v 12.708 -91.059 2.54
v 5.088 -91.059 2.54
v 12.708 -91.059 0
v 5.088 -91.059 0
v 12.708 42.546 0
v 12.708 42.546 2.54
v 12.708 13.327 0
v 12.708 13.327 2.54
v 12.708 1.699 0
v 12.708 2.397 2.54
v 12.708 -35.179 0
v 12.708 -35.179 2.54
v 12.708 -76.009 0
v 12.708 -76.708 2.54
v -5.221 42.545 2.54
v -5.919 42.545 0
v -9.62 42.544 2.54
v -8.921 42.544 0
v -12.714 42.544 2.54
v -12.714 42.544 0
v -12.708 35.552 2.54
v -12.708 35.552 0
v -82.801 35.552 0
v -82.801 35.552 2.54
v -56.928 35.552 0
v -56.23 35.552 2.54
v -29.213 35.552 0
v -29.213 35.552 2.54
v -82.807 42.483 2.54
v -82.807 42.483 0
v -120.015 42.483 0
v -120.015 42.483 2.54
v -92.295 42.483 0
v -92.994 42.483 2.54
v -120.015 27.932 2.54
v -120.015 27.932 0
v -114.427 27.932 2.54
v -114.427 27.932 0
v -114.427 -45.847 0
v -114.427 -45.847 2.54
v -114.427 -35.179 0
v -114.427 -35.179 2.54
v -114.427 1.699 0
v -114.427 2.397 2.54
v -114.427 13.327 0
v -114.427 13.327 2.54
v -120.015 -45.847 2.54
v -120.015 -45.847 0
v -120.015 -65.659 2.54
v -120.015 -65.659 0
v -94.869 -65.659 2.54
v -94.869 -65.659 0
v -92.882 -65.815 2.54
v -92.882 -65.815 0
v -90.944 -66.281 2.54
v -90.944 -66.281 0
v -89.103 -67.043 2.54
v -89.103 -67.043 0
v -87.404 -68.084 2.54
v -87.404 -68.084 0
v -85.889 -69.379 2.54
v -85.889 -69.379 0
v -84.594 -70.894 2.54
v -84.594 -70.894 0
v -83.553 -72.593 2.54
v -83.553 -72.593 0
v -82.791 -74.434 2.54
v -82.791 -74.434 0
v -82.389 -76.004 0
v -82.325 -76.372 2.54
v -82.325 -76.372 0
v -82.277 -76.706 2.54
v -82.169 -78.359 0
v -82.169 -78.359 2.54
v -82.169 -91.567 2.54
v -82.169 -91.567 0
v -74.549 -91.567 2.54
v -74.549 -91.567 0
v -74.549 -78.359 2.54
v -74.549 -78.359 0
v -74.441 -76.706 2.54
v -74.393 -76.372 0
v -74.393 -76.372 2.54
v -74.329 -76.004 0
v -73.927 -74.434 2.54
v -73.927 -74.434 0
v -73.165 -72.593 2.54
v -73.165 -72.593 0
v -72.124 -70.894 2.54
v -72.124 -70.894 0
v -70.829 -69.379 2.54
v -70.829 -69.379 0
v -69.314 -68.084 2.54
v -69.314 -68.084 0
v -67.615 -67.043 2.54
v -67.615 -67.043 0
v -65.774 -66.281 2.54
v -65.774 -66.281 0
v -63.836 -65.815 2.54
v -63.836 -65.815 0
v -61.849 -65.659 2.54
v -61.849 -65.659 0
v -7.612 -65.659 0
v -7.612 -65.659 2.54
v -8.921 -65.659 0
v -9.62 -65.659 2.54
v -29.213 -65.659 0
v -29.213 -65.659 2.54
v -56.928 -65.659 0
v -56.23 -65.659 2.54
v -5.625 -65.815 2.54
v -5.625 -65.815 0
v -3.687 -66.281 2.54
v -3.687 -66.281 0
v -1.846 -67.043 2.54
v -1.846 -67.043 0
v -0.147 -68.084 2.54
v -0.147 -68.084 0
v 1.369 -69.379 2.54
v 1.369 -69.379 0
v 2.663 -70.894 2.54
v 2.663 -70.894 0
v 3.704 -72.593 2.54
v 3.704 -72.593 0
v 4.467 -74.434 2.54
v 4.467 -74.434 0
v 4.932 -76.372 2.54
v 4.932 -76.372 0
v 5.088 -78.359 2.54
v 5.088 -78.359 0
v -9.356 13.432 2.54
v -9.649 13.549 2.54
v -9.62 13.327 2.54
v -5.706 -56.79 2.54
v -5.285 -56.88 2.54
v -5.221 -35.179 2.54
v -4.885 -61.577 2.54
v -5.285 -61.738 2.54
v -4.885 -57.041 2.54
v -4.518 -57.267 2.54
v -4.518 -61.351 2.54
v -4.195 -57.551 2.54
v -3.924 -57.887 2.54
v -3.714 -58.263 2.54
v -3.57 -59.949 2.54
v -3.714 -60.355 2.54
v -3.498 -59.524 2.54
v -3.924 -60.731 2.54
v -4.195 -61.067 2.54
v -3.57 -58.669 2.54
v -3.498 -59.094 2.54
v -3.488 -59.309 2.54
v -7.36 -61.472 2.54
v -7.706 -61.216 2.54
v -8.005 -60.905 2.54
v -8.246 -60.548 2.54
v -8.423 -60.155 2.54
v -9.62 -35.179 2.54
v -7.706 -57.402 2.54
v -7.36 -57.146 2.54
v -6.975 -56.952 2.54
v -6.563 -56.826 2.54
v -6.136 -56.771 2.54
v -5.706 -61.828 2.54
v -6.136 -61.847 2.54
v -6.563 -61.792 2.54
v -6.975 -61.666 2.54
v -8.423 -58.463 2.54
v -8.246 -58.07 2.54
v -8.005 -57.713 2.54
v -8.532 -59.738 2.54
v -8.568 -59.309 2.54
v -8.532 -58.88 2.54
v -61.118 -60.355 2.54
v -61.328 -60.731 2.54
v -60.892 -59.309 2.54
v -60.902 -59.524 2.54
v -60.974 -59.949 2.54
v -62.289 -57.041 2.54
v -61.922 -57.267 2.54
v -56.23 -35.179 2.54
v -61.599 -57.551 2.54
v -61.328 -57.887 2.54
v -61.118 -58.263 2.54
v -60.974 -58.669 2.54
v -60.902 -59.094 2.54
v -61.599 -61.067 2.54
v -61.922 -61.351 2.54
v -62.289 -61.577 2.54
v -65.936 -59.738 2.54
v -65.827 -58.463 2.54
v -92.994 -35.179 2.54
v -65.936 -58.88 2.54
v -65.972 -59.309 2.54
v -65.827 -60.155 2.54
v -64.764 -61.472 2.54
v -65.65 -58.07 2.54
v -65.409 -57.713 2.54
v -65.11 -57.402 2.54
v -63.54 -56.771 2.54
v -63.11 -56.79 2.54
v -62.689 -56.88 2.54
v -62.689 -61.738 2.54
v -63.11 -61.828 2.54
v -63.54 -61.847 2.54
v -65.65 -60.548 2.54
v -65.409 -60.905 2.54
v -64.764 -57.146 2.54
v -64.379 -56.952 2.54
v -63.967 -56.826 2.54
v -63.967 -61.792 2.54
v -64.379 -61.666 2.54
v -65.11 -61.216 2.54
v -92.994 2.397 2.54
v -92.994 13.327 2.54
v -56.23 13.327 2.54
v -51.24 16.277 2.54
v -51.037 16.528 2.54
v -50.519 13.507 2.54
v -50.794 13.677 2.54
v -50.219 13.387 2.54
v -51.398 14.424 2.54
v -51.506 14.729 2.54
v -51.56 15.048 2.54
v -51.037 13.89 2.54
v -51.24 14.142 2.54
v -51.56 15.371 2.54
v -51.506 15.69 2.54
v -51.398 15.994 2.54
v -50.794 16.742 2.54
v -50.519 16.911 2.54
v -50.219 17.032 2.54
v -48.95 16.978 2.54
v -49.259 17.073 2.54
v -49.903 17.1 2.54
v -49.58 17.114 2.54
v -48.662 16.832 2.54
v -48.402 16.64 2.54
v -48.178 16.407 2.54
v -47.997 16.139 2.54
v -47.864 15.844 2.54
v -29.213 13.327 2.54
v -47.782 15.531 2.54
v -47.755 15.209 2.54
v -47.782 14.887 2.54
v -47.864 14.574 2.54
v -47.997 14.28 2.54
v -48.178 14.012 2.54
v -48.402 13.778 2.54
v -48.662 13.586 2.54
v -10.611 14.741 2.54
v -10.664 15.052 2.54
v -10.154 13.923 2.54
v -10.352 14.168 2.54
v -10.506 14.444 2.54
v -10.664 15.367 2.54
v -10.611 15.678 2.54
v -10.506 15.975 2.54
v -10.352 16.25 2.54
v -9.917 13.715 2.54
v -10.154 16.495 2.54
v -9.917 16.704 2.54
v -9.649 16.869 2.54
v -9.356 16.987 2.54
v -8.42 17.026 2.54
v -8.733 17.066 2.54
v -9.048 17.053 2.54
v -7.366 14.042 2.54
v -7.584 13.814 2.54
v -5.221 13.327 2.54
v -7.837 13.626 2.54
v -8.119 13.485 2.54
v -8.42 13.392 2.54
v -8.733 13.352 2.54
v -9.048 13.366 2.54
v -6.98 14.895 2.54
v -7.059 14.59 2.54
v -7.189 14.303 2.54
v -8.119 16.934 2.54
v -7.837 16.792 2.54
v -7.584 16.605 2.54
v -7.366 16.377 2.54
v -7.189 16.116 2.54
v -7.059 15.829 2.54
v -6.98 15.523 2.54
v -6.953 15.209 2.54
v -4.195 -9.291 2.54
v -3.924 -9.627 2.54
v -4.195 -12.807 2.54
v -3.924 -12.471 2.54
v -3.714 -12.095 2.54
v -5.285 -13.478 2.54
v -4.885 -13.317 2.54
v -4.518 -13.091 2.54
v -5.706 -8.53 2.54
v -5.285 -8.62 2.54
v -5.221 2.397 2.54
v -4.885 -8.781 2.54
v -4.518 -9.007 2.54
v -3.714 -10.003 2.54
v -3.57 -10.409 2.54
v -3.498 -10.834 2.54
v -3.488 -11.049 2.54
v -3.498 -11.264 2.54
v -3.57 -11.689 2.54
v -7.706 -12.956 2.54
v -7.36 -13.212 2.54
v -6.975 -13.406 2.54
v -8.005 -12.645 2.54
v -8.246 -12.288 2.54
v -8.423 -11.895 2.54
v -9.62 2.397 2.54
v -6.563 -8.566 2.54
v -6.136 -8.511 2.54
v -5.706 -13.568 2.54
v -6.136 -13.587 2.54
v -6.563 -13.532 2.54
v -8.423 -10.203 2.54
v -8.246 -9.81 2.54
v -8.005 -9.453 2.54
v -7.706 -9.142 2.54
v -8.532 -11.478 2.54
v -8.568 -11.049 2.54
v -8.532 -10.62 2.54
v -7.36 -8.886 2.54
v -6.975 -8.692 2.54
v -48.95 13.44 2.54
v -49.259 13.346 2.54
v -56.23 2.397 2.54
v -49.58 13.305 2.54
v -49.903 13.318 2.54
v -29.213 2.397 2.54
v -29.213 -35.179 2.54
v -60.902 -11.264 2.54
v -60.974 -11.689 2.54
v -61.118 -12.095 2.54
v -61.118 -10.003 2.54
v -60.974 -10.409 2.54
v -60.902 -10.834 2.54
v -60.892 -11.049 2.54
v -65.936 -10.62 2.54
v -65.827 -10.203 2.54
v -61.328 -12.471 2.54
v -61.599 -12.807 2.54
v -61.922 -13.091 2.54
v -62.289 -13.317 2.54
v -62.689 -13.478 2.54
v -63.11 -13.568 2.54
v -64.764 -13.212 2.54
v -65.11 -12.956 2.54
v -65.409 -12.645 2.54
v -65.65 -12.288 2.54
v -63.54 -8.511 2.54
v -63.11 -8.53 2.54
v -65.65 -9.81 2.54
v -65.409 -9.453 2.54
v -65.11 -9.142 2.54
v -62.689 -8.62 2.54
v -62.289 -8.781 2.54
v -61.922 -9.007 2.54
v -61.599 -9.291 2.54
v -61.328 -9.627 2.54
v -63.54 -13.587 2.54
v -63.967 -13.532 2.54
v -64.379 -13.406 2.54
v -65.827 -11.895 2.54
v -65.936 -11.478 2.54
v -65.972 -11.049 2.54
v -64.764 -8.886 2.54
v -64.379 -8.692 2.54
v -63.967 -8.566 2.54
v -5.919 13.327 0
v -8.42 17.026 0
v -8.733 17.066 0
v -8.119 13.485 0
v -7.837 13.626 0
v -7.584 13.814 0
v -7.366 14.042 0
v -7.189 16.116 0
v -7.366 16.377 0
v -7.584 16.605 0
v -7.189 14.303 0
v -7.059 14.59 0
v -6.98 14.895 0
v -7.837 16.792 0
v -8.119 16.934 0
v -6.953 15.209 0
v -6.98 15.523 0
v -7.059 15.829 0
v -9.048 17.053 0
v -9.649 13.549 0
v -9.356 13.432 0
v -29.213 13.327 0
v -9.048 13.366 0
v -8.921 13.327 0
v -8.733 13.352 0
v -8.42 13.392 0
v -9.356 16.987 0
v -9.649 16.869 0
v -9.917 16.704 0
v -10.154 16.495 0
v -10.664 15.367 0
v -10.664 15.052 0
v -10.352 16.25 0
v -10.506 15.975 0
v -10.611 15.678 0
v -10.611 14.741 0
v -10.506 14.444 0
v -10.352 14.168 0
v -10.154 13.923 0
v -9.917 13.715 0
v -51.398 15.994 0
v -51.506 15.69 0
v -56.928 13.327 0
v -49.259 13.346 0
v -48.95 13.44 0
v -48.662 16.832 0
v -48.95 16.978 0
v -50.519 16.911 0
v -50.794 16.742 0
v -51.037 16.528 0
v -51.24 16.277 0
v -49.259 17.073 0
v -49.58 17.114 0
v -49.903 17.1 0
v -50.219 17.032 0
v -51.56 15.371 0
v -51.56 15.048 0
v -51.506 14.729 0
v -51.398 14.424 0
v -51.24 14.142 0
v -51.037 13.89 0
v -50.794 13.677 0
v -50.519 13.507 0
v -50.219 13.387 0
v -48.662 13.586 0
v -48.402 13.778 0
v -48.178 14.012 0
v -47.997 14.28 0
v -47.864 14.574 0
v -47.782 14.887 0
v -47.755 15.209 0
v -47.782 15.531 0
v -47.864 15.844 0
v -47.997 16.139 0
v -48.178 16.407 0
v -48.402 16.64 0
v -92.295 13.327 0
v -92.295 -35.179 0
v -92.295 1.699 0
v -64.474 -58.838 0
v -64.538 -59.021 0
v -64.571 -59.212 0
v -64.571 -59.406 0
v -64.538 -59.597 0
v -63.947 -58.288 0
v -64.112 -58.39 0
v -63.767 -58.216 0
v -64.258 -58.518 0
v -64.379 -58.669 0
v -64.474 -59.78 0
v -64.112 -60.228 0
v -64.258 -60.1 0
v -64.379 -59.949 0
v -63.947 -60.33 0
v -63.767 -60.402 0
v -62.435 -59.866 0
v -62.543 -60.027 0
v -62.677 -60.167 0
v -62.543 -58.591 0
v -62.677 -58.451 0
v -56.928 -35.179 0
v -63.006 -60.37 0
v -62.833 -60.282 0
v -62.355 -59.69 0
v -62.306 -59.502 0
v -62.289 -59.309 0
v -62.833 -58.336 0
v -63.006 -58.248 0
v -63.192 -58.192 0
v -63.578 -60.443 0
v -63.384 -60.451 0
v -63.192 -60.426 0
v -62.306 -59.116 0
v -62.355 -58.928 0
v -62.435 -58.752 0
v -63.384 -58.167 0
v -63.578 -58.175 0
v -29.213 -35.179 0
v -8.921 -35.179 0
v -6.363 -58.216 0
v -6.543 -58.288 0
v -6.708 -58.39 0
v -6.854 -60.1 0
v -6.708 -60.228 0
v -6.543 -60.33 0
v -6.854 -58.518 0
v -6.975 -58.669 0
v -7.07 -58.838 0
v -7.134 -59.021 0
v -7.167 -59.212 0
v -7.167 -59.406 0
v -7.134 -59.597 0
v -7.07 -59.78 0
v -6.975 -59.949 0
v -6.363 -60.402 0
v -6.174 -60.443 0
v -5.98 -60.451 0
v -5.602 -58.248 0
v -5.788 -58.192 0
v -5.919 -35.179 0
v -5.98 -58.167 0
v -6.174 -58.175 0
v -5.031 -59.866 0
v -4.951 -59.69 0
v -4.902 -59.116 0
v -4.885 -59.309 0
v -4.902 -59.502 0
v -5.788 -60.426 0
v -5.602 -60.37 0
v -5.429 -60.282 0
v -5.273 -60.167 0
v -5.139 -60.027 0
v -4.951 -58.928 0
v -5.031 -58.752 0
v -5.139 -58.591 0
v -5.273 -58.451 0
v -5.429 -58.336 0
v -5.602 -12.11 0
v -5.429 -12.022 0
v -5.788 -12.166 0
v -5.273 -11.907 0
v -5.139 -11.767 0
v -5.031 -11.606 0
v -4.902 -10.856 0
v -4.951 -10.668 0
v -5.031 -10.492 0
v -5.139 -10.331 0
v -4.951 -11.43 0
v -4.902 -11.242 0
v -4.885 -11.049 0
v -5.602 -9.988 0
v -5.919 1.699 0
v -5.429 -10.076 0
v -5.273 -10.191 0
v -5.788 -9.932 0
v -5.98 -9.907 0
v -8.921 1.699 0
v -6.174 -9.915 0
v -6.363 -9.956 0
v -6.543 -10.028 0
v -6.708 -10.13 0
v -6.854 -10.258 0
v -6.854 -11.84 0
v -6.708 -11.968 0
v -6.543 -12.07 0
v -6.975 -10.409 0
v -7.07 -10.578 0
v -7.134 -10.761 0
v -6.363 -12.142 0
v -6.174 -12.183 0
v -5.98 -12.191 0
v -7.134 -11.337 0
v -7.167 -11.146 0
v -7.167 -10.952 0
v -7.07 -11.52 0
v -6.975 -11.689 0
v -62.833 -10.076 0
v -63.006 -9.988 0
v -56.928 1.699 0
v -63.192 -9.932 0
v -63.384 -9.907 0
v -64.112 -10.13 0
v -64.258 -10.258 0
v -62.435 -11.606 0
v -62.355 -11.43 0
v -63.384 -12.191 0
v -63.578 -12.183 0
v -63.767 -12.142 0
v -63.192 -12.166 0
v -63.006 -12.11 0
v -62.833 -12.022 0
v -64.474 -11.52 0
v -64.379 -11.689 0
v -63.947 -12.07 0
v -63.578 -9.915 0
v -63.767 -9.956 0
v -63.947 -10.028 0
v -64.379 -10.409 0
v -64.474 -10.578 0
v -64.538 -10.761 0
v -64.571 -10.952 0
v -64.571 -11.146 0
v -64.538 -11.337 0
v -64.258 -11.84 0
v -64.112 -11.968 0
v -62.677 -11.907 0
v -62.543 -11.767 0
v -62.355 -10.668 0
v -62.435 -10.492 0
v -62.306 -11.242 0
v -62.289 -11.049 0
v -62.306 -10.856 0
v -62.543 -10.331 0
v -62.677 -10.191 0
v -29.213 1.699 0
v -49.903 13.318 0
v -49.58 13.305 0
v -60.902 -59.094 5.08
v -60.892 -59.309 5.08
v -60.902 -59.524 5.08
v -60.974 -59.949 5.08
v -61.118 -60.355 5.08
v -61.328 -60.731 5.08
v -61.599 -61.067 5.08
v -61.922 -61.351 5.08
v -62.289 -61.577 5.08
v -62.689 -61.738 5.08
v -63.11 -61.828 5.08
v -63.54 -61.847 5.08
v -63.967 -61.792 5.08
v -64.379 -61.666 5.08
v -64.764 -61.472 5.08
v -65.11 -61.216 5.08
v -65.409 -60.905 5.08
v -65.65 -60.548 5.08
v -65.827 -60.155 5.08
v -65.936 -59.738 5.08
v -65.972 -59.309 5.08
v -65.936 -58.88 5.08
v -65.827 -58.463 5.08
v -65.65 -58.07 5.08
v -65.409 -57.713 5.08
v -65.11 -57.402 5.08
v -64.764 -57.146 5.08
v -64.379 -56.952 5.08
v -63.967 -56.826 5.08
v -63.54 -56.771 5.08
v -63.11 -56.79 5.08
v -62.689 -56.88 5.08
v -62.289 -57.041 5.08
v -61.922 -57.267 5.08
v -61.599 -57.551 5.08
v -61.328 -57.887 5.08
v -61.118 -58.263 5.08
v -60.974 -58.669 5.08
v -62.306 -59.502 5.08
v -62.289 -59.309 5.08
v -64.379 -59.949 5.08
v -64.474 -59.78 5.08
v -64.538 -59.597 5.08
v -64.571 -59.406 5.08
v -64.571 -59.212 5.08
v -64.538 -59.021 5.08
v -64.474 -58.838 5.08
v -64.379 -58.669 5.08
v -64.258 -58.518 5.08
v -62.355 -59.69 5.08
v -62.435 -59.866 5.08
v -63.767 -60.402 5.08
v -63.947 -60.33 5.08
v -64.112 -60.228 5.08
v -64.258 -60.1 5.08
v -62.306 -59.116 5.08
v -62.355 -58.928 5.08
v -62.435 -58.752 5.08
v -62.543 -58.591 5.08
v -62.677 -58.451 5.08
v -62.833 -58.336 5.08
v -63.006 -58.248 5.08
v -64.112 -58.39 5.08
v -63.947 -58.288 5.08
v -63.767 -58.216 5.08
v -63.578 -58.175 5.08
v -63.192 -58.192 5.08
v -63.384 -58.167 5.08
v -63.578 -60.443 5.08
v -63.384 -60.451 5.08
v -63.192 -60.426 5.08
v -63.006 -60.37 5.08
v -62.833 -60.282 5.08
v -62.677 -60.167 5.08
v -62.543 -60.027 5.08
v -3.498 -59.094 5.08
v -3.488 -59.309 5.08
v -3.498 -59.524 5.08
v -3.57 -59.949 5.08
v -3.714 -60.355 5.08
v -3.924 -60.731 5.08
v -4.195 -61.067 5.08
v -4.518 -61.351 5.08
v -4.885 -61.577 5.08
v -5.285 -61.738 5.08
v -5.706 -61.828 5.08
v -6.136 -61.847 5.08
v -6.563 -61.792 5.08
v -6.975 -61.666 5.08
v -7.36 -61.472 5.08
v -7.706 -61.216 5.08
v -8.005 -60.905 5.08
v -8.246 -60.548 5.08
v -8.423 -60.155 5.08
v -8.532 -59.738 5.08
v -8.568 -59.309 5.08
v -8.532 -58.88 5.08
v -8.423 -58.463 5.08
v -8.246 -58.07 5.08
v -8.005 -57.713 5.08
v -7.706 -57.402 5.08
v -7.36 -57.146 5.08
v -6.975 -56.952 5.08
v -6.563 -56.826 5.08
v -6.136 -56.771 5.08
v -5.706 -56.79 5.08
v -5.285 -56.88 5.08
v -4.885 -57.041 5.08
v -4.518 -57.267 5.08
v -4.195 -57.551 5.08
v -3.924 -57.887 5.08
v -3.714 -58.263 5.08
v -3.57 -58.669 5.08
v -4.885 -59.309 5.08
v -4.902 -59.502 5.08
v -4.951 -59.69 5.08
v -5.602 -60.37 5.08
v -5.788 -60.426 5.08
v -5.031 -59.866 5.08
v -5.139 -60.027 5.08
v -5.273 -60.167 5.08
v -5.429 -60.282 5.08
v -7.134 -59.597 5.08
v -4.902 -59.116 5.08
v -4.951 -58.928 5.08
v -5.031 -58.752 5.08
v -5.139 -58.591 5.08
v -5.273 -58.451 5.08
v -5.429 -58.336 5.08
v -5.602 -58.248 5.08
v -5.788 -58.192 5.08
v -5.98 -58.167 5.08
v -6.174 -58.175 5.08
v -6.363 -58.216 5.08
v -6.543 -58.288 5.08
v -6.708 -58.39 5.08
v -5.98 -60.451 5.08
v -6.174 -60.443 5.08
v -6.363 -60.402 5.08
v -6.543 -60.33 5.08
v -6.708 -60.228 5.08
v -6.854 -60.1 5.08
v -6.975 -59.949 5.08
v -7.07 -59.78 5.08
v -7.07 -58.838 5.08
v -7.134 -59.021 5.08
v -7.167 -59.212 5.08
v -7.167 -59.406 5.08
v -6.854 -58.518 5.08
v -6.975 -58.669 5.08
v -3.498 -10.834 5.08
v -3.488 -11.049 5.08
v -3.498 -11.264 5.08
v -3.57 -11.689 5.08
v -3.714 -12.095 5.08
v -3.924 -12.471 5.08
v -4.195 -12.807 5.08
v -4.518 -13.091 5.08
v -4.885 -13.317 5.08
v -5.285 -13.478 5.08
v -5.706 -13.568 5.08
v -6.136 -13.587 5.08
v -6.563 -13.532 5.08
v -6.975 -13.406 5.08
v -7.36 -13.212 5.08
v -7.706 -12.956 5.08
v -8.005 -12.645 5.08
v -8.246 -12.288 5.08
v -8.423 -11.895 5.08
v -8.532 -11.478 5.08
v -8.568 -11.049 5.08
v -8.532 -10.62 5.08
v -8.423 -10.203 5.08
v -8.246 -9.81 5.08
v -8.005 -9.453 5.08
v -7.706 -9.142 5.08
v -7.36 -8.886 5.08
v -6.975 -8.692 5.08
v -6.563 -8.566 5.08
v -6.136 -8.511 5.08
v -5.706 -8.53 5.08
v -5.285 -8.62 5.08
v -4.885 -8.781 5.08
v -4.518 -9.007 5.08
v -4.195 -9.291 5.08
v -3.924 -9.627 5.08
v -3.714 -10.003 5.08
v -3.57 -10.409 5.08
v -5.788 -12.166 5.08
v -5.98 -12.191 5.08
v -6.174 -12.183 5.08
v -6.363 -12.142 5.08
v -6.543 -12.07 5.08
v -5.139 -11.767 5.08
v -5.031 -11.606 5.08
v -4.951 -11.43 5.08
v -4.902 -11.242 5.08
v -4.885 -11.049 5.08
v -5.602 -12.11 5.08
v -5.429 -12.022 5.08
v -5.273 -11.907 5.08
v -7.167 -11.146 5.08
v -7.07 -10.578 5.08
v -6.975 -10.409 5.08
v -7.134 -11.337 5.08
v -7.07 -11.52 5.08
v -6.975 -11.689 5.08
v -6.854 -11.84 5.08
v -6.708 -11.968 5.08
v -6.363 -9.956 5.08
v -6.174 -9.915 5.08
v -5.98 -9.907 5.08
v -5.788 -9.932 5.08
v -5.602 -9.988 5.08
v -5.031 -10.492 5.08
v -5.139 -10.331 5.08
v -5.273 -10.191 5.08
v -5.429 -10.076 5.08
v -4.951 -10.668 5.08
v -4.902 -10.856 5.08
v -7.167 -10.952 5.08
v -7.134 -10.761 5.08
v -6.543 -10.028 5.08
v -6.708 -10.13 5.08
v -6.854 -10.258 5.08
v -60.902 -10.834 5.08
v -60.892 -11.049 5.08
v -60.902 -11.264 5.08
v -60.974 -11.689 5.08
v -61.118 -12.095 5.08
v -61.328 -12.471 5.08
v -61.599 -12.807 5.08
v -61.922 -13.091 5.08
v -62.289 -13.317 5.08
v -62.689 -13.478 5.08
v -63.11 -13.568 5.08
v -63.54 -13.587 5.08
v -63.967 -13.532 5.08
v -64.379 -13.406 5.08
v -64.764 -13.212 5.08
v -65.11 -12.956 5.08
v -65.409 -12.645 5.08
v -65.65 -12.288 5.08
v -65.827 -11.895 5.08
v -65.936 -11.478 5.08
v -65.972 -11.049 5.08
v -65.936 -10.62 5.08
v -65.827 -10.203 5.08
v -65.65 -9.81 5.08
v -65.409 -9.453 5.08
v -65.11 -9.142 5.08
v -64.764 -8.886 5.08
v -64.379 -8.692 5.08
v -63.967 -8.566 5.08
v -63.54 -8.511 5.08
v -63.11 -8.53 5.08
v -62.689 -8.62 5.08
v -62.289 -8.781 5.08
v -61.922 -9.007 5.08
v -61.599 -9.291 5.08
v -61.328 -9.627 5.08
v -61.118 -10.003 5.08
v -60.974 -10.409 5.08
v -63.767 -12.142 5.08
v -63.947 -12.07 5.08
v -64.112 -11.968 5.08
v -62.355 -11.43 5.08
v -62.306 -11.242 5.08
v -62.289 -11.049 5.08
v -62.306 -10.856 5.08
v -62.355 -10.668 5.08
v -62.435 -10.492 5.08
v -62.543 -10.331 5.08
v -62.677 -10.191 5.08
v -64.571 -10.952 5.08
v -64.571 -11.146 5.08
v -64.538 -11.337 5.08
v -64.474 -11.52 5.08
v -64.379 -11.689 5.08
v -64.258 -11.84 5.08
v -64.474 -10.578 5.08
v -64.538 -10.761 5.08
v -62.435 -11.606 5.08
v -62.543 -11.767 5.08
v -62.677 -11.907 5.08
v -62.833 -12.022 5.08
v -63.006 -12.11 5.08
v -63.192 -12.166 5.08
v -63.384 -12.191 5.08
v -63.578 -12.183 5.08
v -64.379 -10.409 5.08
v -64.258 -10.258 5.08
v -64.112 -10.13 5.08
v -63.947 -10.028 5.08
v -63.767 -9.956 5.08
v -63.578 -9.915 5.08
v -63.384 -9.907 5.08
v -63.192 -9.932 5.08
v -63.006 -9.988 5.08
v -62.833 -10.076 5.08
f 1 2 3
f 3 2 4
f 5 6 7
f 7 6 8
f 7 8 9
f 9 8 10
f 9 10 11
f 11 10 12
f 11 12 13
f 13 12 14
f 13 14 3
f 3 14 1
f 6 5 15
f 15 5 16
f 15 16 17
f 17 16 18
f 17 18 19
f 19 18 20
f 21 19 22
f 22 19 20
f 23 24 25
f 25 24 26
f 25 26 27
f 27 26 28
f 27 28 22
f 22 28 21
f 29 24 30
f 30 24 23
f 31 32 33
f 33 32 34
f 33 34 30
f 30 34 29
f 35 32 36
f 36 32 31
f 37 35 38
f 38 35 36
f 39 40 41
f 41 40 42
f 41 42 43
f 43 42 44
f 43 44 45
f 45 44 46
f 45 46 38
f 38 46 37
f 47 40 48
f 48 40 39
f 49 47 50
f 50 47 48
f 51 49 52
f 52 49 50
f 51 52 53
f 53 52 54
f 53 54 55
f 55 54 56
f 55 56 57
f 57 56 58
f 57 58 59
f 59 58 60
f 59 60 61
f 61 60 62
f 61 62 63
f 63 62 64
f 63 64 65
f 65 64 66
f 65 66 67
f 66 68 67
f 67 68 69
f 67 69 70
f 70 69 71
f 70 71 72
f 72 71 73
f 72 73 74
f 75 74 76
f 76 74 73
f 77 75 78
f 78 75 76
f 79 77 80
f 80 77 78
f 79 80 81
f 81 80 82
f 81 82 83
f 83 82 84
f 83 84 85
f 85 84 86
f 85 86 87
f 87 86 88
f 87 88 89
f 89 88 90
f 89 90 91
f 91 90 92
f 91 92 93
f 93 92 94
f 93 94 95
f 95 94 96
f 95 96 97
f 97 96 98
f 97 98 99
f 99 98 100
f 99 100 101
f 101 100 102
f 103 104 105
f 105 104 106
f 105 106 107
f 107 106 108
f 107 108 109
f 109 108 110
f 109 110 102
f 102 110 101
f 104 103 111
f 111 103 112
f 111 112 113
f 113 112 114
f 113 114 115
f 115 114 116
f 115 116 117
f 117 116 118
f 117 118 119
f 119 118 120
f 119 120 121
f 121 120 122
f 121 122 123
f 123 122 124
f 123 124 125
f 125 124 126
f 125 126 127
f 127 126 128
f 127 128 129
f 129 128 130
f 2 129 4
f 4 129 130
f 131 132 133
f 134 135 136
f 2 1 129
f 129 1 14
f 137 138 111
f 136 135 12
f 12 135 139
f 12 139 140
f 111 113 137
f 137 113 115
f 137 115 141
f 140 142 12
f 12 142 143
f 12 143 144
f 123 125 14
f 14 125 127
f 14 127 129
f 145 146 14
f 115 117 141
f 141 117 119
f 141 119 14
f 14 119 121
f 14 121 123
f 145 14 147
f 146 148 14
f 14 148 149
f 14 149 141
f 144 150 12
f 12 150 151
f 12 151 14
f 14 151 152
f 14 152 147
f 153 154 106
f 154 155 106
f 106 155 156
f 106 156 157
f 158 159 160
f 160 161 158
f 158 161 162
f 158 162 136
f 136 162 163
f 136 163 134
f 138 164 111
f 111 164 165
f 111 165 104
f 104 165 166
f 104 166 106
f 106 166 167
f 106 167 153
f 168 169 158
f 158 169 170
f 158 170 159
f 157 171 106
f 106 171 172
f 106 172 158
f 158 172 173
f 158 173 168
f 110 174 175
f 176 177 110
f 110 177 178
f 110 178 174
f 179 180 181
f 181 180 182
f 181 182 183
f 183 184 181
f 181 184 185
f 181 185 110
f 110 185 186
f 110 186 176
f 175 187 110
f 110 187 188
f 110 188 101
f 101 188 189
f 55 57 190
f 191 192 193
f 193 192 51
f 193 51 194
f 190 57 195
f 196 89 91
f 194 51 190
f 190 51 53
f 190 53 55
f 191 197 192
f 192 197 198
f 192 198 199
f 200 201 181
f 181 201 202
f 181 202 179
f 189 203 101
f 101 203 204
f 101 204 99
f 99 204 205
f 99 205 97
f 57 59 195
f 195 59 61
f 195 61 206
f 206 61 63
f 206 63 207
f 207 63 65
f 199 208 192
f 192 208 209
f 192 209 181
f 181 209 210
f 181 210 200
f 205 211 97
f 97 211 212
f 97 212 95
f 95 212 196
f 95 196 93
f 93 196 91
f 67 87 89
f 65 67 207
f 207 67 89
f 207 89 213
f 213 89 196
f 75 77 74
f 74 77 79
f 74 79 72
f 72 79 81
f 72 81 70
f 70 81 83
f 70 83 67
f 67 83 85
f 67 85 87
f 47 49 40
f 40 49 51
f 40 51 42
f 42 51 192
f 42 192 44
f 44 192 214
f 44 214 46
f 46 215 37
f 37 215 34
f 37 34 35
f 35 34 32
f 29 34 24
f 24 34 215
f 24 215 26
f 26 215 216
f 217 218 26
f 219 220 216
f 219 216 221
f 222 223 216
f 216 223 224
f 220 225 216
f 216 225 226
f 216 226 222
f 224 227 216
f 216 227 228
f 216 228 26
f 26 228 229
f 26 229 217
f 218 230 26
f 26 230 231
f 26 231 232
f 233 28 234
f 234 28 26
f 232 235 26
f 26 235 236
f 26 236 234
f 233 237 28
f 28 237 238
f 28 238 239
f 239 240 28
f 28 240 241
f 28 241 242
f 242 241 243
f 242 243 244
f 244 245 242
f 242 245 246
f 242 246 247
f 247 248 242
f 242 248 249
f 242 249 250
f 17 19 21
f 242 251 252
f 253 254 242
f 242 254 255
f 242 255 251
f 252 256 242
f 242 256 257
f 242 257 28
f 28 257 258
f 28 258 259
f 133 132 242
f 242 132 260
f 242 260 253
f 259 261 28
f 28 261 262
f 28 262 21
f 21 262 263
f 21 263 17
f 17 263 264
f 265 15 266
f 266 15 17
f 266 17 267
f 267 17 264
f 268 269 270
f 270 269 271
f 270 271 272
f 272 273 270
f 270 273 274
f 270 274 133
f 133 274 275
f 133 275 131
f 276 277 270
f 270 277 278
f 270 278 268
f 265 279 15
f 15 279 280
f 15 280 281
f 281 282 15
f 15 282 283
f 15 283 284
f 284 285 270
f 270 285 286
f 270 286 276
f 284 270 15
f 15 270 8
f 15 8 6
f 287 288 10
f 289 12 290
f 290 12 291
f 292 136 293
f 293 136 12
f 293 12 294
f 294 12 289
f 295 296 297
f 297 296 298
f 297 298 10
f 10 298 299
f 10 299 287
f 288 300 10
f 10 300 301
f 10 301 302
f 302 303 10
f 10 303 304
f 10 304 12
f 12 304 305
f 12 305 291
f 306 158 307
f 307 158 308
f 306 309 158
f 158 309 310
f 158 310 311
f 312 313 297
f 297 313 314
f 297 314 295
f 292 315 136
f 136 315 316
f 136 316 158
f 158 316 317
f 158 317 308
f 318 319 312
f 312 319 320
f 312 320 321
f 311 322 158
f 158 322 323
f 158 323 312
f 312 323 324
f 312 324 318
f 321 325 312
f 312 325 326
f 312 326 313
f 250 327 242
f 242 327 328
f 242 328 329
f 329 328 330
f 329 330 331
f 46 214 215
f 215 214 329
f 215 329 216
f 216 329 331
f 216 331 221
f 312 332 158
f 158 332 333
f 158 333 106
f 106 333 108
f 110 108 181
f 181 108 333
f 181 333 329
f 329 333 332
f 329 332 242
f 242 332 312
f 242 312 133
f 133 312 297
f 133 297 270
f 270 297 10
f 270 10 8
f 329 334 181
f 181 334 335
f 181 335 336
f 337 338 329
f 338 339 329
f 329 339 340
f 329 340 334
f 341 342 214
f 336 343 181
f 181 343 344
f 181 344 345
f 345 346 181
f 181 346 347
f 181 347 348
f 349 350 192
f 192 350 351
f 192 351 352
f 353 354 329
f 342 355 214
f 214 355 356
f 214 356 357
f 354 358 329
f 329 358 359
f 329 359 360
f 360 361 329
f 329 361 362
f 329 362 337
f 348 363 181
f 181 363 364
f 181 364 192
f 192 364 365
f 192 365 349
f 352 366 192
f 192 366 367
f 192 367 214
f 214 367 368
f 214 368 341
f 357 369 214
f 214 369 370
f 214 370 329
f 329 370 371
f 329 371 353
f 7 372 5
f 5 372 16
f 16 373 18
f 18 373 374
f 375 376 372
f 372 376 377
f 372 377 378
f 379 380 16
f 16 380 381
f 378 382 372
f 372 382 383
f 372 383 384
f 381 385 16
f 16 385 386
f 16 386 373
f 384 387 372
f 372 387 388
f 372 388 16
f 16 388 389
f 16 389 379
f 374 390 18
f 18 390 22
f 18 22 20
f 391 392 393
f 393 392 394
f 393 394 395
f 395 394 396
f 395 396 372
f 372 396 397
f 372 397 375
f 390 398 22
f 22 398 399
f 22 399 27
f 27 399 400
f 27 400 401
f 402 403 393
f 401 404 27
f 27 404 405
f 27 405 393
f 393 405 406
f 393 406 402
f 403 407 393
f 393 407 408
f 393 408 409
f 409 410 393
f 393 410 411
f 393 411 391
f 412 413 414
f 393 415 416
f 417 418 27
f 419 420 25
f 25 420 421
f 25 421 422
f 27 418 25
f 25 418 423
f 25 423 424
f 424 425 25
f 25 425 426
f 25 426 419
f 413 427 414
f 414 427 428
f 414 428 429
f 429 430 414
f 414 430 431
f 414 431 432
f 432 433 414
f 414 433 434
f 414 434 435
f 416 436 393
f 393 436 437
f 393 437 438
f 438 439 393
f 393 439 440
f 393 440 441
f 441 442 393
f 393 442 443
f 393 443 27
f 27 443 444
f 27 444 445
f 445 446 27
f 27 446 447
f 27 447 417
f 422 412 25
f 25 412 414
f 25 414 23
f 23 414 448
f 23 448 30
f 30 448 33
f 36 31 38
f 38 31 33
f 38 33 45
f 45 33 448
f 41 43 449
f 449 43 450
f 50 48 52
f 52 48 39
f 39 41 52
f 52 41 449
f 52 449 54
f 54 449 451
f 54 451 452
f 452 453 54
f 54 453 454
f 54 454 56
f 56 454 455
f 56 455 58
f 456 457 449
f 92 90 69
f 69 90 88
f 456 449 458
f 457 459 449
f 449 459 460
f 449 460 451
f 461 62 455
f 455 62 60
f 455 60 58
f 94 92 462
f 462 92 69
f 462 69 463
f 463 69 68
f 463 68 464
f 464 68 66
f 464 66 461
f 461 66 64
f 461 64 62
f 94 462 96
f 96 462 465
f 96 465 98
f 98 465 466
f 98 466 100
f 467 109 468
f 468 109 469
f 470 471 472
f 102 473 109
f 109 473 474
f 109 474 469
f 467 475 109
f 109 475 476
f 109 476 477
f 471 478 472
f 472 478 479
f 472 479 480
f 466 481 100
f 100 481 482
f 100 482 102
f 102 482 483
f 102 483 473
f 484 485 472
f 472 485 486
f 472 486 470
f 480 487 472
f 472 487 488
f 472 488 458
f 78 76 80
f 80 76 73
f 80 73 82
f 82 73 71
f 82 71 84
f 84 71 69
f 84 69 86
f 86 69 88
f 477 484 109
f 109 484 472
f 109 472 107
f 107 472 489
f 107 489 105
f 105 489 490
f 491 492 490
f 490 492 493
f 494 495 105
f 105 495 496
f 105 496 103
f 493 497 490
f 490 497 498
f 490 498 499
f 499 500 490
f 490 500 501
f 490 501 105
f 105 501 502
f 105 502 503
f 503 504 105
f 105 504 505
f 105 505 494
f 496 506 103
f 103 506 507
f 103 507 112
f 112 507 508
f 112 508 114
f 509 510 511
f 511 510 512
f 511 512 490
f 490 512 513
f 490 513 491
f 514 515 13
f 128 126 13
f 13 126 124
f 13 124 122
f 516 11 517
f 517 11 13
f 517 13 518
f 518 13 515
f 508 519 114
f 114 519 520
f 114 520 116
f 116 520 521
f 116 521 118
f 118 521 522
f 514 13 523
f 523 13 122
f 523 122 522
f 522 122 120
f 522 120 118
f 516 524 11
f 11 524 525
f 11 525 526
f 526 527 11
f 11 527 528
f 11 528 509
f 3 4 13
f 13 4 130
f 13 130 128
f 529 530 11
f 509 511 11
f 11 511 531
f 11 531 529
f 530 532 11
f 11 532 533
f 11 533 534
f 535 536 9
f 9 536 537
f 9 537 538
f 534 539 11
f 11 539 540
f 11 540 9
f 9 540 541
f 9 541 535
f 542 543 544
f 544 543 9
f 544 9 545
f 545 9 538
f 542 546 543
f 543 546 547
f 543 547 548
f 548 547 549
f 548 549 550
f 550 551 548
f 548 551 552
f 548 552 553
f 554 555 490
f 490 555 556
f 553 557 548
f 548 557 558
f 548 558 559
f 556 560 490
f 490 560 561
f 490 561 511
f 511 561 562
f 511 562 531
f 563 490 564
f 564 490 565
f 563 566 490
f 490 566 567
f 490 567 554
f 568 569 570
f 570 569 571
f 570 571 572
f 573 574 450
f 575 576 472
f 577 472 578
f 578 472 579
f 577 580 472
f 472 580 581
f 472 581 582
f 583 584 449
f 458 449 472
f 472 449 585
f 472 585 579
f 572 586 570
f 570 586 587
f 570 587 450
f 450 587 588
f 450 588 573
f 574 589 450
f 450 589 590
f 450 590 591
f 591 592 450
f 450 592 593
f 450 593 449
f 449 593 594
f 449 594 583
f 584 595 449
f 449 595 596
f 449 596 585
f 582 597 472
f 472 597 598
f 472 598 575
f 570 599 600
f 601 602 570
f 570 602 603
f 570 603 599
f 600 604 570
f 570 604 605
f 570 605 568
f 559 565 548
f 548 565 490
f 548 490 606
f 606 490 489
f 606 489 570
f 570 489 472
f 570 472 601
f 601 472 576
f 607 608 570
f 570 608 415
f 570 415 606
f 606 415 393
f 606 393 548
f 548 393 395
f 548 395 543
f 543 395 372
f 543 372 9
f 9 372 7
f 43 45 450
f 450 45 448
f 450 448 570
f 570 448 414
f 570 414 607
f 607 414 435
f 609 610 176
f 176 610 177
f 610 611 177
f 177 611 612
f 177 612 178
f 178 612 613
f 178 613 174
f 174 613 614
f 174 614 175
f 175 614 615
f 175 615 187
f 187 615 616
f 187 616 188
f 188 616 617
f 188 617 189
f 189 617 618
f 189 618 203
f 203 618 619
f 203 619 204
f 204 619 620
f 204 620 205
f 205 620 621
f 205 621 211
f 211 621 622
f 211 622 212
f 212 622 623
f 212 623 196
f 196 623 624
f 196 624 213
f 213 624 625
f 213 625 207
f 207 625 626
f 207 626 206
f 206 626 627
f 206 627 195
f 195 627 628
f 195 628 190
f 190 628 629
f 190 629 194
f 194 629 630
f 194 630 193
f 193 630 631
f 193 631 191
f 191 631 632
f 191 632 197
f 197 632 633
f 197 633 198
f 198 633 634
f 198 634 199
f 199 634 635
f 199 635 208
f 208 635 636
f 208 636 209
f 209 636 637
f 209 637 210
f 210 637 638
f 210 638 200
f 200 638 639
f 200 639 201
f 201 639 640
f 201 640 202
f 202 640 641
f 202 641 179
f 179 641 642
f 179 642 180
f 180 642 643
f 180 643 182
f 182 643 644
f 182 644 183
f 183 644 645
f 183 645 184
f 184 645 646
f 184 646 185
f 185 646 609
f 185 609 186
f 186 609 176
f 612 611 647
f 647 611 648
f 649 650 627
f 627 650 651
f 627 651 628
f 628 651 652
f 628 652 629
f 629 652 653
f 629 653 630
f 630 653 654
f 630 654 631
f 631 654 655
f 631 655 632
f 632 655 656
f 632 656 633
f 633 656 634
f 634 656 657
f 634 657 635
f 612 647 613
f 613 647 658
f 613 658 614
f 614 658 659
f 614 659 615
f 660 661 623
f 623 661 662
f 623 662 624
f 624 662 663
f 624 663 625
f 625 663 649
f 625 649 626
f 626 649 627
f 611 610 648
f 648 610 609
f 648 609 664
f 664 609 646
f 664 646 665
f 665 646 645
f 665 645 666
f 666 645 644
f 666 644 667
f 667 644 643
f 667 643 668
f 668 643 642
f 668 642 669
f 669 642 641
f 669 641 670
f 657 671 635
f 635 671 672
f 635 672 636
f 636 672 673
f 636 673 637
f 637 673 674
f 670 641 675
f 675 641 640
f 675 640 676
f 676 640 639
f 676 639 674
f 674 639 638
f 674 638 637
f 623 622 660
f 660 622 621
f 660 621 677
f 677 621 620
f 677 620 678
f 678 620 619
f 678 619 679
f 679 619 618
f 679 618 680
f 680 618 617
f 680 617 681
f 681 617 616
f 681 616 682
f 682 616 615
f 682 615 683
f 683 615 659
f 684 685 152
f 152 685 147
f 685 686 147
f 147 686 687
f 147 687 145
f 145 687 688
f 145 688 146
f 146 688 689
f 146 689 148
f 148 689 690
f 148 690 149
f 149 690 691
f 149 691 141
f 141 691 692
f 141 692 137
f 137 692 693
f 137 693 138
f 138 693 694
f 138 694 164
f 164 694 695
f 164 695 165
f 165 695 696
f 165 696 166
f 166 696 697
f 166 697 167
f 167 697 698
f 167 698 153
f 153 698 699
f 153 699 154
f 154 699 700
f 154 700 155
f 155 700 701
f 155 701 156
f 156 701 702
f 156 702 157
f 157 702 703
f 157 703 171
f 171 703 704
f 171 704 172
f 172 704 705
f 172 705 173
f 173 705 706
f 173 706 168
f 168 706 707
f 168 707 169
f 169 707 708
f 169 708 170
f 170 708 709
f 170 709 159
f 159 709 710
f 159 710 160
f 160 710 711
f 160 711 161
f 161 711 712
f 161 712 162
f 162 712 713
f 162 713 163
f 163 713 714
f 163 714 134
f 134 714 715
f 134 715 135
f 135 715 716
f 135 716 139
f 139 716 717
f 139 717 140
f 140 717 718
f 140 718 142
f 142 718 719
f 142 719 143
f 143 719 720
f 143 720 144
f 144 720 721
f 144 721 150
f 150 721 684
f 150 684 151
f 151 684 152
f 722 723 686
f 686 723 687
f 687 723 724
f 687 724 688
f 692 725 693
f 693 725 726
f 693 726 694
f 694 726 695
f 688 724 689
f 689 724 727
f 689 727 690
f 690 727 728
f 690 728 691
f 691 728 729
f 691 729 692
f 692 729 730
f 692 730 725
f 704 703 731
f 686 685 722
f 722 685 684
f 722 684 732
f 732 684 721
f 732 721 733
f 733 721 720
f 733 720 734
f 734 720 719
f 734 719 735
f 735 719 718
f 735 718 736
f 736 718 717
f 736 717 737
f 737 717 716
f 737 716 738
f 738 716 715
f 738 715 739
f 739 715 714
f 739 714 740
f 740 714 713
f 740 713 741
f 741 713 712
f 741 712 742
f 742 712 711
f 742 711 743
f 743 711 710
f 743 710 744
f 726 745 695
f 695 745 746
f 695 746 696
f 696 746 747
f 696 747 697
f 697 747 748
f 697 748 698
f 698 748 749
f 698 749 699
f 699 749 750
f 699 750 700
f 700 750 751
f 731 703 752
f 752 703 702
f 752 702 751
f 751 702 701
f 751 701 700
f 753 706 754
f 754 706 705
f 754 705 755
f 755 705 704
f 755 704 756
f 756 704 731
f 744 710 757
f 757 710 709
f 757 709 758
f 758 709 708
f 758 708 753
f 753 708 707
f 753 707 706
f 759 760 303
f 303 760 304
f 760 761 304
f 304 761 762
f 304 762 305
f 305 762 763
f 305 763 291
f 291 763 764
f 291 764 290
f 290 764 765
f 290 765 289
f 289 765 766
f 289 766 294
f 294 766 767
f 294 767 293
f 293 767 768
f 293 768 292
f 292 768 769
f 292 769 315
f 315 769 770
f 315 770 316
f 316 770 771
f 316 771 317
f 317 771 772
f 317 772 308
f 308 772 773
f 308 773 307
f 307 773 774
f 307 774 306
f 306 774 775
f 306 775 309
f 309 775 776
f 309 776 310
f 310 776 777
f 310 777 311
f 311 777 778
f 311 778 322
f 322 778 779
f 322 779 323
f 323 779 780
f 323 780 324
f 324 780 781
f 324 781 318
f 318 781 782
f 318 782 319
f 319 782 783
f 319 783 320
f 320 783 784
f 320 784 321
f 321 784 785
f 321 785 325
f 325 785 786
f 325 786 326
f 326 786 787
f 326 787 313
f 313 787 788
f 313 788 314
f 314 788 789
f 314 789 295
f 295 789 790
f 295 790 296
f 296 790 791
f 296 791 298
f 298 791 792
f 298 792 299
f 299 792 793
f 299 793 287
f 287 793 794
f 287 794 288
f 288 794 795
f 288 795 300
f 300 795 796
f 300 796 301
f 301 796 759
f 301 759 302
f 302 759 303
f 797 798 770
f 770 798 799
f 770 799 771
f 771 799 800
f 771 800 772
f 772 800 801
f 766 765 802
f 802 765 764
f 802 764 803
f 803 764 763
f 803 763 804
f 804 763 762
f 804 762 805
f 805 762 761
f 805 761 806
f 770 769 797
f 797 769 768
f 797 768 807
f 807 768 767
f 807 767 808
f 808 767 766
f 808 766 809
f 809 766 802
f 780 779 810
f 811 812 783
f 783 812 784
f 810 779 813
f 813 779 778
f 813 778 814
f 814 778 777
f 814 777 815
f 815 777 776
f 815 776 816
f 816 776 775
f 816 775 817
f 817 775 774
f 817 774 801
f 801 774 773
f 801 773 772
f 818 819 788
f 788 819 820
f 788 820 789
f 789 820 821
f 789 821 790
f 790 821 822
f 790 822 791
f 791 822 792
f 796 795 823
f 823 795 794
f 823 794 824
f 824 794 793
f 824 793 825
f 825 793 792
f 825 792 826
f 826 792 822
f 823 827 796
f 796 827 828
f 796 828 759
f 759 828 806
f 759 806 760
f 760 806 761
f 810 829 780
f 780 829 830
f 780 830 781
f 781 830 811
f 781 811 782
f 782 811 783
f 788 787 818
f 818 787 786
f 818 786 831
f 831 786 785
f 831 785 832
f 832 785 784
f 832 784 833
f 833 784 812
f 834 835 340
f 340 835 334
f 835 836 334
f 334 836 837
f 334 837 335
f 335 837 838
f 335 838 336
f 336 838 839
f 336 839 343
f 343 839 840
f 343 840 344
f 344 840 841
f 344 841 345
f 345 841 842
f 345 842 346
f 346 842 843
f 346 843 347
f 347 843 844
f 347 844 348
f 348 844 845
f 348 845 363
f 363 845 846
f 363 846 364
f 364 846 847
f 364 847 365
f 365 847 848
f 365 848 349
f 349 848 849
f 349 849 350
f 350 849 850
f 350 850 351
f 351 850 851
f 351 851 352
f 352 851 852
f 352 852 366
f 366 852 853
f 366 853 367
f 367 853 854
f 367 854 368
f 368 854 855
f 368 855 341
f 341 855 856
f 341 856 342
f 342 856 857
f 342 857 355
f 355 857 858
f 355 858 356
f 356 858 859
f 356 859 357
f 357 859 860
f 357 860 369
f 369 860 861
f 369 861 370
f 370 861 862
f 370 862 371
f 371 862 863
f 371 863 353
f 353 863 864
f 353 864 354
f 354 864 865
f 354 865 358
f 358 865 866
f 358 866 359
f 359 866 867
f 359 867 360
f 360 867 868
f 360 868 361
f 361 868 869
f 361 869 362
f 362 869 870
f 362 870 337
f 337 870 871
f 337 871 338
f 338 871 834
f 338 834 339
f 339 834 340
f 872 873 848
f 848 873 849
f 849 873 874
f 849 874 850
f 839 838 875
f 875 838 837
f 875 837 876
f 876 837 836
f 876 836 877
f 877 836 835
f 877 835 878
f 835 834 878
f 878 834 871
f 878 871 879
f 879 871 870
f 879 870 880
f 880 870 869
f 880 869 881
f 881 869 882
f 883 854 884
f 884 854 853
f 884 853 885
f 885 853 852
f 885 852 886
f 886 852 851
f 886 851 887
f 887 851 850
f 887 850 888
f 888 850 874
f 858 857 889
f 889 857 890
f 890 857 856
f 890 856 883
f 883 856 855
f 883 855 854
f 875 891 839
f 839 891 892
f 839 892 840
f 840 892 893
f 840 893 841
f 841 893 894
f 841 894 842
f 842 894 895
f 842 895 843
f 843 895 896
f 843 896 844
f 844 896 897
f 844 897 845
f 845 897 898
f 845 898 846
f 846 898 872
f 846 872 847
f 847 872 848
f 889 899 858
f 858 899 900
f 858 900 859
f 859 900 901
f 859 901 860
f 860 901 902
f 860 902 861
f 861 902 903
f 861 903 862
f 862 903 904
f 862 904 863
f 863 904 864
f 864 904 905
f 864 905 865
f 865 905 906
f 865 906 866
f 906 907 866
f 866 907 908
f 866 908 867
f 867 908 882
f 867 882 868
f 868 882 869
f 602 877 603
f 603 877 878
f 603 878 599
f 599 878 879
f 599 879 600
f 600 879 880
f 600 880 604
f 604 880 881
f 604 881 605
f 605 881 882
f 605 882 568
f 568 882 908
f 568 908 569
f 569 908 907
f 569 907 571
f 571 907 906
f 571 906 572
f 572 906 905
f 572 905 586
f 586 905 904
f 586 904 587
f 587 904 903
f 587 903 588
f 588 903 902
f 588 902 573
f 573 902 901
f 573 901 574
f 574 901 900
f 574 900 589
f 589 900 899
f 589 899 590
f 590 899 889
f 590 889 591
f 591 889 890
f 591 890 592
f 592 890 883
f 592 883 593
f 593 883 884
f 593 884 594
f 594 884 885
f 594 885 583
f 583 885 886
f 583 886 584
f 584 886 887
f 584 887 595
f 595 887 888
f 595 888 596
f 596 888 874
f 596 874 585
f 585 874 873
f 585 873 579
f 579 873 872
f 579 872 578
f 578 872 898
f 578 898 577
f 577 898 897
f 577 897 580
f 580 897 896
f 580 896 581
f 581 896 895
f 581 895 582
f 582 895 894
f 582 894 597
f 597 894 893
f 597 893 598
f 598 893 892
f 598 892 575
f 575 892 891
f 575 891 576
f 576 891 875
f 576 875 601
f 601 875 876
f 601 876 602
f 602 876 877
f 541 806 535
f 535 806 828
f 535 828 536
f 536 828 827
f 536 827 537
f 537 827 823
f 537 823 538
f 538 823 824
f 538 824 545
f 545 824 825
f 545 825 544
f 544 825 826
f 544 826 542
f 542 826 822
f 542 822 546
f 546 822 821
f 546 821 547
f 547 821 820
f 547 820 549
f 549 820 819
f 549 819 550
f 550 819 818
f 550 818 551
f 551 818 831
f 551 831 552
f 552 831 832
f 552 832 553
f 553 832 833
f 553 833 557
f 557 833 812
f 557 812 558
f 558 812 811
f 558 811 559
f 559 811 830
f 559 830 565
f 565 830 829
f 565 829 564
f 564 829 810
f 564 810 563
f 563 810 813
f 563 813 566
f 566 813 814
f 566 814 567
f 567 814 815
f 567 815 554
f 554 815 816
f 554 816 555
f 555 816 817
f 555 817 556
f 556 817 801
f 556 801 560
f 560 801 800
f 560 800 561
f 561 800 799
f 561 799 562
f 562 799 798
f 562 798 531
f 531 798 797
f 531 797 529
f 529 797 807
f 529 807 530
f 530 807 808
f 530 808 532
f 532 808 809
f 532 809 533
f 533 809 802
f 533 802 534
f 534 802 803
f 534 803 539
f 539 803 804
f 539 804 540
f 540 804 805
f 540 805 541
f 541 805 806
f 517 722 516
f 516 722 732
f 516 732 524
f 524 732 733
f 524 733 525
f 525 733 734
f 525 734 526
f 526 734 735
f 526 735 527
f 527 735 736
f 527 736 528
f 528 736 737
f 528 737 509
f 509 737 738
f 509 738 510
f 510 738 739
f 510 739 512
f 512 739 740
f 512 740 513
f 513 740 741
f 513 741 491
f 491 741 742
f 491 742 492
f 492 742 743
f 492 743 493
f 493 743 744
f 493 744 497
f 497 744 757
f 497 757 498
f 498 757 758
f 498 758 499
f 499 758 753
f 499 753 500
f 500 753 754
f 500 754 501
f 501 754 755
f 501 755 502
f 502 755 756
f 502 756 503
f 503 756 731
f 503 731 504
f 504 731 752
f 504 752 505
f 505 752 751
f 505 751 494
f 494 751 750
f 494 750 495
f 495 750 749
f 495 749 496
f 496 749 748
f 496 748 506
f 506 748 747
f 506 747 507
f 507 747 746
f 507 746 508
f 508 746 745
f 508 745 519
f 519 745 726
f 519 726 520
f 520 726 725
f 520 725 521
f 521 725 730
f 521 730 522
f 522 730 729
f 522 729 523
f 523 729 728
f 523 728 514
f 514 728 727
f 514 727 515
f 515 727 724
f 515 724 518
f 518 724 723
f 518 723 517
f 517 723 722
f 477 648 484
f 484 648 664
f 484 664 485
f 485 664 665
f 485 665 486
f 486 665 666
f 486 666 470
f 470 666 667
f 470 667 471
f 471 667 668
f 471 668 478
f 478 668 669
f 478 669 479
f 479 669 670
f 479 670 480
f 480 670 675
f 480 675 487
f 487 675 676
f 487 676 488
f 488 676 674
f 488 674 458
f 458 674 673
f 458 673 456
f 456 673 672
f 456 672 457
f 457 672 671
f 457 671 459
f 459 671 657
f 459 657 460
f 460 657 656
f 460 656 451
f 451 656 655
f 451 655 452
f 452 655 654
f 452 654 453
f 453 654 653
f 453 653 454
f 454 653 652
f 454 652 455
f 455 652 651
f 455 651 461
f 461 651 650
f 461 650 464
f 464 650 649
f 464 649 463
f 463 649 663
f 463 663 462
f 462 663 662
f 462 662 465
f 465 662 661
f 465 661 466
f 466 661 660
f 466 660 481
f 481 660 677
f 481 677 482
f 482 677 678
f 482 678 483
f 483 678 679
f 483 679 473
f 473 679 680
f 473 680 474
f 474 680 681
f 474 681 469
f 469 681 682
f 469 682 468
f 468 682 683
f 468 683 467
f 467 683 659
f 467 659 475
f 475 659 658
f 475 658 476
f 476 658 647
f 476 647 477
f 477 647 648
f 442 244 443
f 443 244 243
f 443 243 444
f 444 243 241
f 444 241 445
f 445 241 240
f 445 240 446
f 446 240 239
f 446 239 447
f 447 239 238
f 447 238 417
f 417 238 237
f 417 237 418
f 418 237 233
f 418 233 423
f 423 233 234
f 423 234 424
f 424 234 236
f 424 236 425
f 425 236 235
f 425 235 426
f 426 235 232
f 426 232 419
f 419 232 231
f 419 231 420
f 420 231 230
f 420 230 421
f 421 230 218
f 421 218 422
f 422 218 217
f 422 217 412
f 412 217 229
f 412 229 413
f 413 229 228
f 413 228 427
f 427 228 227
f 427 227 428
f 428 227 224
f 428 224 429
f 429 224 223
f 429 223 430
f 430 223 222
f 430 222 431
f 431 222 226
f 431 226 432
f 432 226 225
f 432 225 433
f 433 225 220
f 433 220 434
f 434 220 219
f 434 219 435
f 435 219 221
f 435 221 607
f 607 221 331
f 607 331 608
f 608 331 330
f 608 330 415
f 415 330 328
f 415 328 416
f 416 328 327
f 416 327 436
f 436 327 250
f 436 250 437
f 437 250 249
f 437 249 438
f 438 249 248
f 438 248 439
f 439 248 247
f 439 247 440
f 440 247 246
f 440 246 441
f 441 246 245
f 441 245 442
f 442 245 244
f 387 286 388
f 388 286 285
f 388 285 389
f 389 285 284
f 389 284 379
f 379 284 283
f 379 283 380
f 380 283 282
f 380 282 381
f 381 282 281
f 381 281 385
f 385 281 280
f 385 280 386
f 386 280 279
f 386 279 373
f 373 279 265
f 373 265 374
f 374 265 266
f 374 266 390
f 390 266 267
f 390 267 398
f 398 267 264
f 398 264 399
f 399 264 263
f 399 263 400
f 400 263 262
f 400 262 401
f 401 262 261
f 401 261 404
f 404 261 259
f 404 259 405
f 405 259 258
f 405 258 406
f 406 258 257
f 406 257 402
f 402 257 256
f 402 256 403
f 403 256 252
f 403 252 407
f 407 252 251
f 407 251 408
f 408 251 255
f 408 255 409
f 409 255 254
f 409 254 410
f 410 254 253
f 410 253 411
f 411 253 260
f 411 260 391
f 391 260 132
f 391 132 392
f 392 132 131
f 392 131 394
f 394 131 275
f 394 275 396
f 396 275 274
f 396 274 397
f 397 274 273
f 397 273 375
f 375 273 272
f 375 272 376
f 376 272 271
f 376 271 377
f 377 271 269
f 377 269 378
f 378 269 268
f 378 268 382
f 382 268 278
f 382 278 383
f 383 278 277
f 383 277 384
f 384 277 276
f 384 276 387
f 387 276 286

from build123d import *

# Parameters (mm, degrees)
BOSS_EXTRUDE1_DEPTH = 2.54
SKETCH3_R           = 2.54
BOSS_EXTRUDE2_DEPTH = 2.54
SKETCH4_R           = 1.143
CUT_EXTRUDE1_DEPTH  = 152.042782279
SKETCH5_R           = 1.858808724
SKETCH5_R_2         = 1.906231368
CUT_EXTRUDE2_DEPTH  = 151.978698095


with BuildPart() as part:
    # Sketch2 → Boss-Extrude1 (new body)
    with BuildSketch(Plane.XY):
        with BuildLine():
            Line((-114.427, 27.932368959), (-120.015, 27.932368959))
            Line((-120.015, 27.932368959), (-120.015, 42.483412464))
            Line((-120.015, 42.483412464), (-82.806810404, 42.483412464))
            Line((-82.806810404, 42.483412464), (-82.801193697, 35.552368959))
            Line((-82.801193697, 35.552368959), (-12.708278928, 35.552368959))
            Line((-12.708278928, 35.552368959), (-12.713937882, 42.544153403))
            Line((-12.713937882, 42.544153403), (12.708274756, 42.545846409))
            Line((12.708274756, 42.545846409), (12.708274756, -33.146999807))
            Line((12.708274756, -33.146999807), (12.708274756, -91.058999807))
            Line((12.708274756, -91.058999807), (5.088274756, -91.058999807))
            Line((5.088274756, -91.058999807), (5.088274756, -78.358999807))
            ThreePointArc((5.088274756, -78.358999807), (1.368530877, -69.378743686), (-7.611725244, -65.658999807))
            Line((-7.611725244, -65.658999807), (-61.849, -65.658999807))
            ThreePointArc((-61.849, -65.658999807), (-70.829256121, -69.378743686), (-74.549, -78.358999807))
            Line((-74.549, -78.358999807), (-74.549, -85.724999807))
            Line((-74.549, -85.724999807), (-74.549, -91.566999807))
            Line((-74.549, -91.566999807), (-82.169, -91.566999807))
            Line((-82.169, -91.566999807), (-82.169, -85.724999807))
            Line((-82.169, -85.724999807), (-82.169, -78.358999807))
            ThreePointArc((-82.169, -78.358999807), (-85.888743879, -69.378743686), (-94.869, -65.658999807))
            Line((-94.869, -65.658999807), (-120.015, -65.658999807))
            Line((-120.015, -65.658999807), (-120.015, -45.846999807))
            Line((-120.015, -45.846999807), (-114.427, -45.846999807))
            Line((-114.427, -45.846999807), (-114.427, 27.932368959))
        make_face()
    extrude(amount=BOSS_EXTRUDE1_DEPTH)

    # Sketch3 → Boss-Extrude2 (add)
    with BuildSketch(Plane.XY.offset(2.54)):
        with Locations((-63.432362622, -59.308999807)):
            Circle(SKETCH3_R)
        with Locations((-6.028362622, -59.308999807)):
            Circle(SKETCH3_R)
        with Locations((-6.028362622, -11.048999807)):
            Circle(SKETCH3_R)
        with Locations((-63.432362622, -11.048999807)):
            Circle(SKETCH3_R)
    extrude(amount=BOSS_EXTRUDE2_DEPTH)

    # Sketch4 → Cut-Extrude1 (cut, through all)
    with BuildSketch(Plane.XY.offset(5.08)):
        with Locations((-6.028362622, -59.308999807)):
            Circle(SKETCH4_R)
        with Locations((-63.432362622, -59.308999807)):
            Circle(SKETCH4_R)
        with Locations((-63.432362622, -11.048999807)):
            Circle(SKETCH4_R)
        with Locations((-6.028362622, -11.048999807)):
            Circle(SKETCH4_R)
    extrude(amount=-CUT_EXTRUDE1_DEPTH, mode=Mode.SUBTRACT)

    # Sketch5 → Cut-Extrude2 (cut, through all)
    with BuildSketch(Plane.XY.offset(2.54)):
        with Locations((-8.811927589, 15.209269476)):
            Circle(SKETCH5_R)
        with Locations((-49.660967681, 15.209269476)):
            Circle(SKETCH5_R_2)
    extrude(amount=-CUT_EXTRUDE2_DEPTH, mode=Mode.SUBTRACT)


solid = part.part
